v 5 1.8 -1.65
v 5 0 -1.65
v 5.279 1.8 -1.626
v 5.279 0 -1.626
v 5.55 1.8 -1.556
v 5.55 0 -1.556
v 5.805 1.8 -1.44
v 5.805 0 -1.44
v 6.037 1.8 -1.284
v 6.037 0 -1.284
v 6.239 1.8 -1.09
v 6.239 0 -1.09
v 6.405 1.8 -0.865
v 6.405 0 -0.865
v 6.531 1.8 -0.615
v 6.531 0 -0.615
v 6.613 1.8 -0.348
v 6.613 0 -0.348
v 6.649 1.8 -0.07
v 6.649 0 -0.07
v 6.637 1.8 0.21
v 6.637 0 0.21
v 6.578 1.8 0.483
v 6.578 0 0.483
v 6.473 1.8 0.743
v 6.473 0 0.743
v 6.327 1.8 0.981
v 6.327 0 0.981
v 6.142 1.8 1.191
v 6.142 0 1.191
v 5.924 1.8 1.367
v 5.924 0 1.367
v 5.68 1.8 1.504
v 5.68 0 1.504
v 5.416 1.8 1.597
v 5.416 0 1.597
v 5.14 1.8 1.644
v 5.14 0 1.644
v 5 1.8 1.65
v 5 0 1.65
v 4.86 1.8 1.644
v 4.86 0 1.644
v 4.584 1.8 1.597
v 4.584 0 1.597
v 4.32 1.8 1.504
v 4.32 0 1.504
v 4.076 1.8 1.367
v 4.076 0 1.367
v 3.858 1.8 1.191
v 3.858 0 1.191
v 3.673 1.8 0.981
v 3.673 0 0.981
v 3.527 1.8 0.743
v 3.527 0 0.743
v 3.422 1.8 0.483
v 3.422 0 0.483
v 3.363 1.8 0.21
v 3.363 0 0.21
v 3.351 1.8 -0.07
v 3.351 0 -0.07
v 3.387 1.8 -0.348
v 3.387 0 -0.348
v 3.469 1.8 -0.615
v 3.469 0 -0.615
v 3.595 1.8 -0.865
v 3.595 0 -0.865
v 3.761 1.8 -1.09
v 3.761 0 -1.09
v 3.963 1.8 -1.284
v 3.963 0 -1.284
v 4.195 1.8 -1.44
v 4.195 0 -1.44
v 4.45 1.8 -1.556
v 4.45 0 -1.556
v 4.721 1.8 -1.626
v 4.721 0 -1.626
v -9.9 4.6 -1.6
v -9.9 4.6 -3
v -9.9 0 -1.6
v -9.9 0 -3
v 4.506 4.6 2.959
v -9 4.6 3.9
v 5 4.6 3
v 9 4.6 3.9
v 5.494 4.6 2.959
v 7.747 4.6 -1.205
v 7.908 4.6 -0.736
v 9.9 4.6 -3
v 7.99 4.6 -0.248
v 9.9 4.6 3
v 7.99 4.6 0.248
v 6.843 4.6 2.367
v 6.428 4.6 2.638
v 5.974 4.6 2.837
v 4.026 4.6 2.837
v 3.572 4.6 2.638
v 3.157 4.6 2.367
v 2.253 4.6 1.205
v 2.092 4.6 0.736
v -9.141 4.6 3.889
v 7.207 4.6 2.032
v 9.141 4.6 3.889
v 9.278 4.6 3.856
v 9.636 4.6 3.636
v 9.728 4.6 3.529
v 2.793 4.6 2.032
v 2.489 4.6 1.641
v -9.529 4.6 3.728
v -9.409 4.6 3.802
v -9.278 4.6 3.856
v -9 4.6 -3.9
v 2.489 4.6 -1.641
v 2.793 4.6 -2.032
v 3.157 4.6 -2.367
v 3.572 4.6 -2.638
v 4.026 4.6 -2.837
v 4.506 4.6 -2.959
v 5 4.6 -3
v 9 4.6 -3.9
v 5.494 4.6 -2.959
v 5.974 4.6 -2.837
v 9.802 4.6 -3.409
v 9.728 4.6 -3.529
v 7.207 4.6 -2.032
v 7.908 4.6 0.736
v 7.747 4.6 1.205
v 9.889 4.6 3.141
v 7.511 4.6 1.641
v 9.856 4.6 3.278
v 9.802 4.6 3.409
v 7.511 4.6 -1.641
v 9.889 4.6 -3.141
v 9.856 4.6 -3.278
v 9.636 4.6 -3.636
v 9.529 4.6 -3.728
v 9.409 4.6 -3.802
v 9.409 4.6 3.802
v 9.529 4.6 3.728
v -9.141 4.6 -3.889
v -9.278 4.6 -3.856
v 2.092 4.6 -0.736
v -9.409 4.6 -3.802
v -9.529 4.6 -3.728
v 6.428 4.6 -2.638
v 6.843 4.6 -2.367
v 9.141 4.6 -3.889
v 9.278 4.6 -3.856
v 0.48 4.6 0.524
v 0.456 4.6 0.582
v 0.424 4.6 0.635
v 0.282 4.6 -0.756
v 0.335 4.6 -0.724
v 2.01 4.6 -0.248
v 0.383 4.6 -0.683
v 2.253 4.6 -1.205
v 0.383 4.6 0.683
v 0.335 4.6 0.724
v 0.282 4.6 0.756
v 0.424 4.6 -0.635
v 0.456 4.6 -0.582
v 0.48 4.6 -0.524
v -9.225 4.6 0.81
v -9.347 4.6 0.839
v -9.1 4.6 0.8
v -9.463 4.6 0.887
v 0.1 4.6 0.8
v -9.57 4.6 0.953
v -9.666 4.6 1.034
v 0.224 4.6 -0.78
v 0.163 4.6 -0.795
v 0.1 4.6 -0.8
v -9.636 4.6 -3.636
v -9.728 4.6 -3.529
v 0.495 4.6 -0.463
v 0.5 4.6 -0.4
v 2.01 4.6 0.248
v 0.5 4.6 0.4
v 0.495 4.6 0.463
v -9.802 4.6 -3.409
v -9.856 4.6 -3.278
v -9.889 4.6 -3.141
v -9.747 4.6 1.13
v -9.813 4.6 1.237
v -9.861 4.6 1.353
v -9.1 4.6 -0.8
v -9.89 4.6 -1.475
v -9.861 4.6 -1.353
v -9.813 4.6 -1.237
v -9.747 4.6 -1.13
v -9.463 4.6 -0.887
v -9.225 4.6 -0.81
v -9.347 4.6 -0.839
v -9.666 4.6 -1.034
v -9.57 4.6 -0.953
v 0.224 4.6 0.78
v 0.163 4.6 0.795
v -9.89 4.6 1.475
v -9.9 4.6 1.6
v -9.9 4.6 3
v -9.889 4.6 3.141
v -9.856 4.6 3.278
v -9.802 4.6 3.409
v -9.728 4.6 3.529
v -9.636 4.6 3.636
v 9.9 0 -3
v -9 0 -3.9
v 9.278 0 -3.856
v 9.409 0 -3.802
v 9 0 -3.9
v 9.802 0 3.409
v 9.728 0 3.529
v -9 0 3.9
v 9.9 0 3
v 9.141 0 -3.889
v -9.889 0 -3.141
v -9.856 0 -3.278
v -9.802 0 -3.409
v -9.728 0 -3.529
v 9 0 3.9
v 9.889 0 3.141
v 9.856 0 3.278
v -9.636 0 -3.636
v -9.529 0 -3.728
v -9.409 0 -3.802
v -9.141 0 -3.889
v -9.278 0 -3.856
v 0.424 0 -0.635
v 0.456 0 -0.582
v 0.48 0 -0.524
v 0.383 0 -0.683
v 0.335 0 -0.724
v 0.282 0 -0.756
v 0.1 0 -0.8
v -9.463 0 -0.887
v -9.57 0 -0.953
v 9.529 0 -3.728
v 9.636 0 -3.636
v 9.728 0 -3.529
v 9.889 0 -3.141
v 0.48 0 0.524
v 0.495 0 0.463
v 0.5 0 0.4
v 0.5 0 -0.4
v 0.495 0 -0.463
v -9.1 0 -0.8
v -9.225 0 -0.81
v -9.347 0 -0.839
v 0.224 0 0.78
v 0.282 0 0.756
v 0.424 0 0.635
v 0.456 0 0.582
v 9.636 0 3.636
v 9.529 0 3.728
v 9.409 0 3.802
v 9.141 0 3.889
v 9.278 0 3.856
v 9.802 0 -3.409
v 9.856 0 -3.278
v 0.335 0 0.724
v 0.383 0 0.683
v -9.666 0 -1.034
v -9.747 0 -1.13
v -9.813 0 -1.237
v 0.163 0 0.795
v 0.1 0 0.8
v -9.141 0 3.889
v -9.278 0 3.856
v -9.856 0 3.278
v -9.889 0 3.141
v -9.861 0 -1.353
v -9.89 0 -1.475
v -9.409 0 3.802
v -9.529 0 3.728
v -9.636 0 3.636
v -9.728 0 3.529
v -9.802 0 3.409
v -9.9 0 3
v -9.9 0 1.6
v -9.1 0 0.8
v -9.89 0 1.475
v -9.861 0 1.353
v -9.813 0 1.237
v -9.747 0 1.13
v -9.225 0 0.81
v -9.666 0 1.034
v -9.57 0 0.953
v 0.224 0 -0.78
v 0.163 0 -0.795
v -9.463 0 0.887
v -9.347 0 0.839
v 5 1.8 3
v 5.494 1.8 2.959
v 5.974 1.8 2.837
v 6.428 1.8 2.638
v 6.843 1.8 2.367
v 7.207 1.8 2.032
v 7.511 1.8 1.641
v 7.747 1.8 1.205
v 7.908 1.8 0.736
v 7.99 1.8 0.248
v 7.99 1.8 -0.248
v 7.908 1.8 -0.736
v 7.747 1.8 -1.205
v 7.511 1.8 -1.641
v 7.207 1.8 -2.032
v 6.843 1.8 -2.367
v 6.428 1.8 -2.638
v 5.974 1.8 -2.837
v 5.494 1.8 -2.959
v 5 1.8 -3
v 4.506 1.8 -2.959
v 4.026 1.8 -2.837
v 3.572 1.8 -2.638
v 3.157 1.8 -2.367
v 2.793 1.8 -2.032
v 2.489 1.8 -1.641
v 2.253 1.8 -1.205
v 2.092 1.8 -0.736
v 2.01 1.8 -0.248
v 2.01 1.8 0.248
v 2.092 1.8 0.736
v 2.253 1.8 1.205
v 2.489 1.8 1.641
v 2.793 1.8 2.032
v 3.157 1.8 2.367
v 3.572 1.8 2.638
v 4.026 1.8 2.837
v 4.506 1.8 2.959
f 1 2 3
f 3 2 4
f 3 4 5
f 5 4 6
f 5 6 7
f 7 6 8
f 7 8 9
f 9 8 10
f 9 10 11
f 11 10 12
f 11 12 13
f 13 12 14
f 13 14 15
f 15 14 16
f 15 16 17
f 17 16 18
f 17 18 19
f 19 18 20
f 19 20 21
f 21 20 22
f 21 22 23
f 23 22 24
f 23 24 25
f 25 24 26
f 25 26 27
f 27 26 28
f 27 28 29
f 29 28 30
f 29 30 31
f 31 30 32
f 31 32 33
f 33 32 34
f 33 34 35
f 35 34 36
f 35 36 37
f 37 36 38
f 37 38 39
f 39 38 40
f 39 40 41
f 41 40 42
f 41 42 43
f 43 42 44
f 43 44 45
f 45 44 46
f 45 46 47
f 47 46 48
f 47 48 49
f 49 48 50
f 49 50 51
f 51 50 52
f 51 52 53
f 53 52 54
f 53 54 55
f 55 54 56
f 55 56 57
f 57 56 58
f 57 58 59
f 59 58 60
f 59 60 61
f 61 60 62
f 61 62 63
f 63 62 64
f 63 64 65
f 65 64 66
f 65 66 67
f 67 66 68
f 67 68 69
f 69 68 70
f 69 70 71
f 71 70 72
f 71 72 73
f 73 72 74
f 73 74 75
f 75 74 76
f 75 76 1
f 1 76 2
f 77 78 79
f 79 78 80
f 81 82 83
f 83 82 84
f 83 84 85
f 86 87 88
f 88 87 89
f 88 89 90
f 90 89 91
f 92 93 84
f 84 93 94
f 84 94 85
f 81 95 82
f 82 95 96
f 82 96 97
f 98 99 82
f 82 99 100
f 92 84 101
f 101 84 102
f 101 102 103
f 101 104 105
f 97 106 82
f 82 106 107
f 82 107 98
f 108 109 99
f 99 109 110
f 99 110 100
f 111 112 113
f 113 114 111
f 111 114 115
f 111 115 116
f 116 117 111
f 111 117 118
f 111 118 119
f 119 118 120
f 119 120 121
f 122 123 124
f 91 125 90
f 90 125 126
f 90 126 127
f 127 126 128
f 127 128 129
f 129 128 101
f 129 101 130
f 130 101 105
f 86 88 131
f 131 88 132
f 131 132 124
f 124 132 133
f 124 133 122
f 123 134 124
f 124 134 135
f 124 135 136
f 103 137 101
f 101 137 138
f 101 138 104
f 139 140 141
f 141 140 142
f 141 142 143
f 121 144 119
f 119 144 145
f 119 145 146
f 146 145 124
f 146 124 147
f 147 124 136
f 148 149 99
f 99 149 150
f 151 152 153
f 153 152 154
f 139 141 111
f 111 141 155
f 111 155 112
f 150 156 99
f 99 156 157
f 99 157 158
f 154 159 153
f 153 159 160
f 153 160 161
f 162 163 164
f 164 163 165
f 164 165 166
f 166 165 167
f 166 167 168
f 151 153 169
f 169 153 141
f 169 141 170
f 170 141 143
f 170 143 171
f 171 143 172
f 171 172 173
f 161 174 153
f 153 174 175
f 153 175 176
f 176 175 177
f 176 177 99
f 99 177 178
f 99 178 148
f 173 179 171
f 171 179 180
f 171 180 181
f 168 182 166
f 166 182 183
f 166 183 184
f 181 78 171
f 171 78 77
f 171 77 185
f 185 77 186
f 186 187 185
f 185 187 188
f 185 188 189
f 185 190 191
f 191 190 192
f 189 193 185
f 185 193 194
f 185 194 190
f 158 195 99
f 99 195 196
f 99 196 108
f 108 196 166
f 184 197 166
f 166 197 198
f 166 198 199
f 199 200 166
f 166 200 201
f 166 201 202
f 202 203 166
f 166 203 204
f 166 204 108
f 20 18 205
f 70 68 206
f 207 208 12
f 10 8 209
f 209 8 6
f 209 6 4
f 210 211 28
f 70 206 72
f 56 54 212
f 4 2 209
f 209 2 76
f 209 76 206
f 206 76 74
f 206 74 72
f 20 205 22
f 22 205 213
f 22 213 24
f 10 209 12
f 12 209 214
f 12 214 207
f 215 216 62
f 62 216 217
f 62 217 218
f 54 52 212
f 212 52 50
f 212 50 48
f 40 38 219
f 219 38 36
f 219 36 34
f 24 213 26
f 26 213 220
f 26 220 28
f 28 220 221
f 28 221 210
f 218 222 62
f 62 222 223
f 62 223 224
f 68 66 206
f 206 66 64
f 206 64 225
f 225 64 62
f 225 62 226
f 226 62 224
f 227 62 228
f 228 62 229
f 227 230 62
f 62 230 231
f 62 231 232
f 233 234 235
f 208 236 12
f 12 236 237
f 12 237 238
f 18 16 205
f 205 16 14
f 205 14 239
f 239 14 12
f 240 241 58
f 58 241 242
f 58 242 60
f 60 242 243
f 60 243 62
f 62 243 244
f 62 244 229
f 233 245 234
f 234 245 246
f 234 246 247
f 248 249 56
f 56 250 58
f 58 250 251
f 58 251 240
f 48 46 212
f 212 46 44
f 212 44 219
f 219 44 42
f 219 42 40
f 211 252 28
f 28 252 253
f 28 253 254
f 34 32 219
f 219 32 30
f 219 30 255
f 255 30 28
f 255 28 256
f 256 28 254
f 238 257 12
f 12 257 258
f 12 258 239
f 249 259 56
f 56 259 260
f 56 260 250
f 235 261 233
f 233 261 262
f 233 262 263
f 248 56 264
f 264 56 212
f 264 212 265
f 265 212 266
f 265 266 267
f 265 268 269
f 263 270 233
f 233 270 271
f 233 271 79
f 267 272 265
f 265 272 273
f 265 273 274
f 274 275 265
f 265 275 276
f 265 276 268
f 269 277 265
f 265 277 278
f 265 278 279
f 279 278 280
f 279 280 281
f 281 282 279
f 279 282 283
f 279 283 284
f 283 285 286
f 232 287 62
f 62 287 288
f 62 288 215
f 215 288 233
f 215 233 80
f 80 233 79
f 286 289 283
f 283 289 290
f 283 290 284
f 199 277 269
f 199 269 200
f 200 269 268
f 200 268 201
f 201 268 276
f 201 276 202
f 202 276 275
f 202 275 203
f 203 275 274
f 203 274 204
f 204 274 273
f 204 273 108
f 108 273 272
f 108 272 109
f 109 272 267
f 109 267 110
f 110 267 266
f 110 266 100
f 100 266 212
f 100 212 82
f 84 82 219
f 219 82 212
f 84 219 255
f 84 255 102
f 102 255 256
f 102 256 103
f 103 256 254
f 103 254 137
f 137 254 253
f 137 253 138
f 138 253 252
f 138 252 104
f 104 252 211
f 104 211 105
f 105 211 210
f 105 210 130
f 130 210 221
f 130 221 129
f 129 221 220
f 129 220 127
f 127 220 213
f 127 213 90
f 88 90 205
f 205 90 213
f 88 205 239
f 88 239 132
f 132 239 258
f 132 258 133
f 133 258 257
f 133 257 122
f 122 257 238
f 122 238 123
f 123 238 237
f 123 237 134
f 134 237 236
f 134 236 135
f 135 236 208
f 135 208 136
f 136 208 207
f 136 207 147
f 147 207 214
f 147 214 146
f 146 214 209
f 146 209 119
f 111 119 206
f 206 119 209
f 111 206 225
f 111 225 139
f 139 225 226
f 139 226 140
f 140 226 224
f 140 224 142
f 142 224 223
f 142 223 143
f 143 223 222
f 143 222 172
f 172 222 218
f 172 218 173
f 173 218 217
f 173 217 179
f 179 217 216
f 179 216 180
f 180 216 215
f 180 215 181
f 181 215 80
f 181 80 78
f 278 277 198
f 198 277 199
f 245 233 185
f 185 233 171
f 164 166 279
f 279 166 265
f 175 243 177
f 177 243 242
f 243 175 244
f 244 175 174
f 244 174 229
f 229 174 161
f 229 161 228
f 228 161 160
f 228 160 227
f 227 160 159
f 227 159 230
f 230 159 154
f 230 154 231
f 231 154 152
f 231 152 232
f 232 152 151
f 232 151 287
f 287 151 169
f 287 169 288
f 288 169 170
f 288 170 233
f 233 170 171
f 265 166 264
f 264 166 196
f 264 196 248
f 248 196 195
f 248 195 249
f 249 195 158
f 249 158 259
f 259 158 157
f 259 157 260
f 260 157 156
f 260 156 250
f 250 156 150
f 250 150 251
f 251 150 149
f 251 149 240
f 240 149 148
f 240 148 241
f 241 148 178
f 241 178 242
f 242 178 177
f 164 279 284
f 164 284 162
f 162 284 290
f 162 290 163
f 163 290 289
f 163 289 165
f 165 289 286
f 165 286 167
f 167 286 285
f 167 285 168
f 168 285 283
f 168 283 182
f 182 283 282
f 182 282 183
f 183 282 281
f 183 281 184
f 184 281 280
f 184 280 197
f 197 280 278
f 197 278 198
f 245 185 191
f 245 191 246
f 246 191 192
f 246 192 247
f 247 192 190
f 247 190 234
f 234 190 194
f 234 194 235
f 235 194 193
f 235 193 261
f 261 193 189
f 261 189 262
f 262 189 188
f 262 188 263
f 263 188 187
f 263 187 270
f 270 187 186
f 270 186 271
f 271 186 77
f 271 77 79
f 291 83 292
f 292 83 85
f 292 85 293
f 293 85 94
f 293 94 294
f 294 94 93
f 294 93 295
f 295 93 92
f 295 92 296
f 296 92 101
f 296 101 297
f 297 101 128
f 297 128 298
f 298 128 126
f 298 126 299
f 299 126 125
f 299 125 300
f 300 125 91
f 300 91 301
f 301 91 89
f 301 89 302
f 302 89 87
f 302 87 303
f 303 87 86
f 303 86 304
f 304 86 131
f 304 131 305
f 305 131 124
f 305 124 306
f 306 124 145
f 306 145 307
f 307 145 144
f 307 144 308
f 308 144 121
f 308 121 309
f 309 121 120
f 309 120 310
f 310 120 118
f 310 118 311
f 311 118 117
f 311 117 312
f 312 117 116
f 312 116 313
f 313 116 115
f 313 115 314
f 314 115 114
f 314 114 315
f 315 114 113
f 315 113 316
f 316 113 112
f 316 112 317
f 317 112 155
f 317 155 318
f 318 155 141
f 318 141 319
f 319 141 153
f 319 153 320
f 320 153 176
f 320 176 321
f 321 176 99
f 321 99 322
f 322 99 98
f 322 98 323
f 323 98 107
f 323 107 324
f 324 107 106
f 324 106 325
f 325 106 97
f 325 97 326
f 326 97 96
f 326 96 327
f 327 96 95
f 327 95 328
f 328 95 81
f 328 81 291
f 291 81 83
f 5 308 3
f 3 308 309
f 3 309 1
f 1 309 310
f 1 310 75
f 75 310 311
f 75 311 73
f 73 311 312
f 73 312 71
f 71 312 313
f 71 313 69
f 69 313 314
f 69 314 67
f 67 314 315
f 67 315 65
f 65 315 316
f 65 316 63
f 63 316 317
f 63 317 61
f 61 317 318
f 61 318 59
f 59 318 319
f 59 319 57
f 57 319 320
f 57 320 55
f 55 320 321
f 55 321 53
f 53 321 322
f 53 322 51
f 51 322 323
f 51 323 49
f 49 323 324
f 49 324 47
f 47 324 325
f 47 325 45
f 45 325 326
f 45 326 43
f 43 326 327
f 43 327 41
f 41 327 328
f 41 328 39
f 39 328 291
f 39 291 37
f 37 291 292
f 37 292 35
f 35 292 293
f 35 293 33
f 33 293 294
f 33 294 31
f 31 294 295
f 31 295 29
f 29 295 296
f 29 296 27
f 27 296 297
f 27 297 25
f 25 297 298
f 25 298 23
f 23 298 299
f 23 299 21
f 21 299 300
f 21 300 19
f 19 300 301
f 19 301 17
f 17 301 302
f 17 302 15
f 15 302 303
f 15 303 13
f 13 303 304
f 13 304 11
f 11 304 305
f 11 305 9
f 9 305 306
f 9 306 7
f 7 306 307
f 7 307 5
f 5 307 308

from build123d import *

# Parameters (mm, degrees)
SKETCH_1_R          = 1.65
EXTRUDE_1_DEPTH     = 4.6
CUT_EXTRUDE_1_DEPTH = 4.6
FILLET_1_R          = 0.8
SKETCH_3_R          = 3
CUT_EXTRUDE_2_DEPTH = 2.8


with BuildPart() as part:
    # 草图1 → 凸台-拉伸1 (new body)
    with BuildSketch(Plane(origin=(0, 0, 0), x_dir=(1, 0, 0), z_dir=(0, 1, 0))):
        with BuildLine():
            Line((-9.9, -3), (-9.9, 3))
            ThreePointArc((-9.9, 3), (-9.636396103, 3.636396103), (-9, 3.9))
            Line((-9, 3.9), (9, 3.9))
            ThreePointArc((9, 3.9), (9.636396103, 3.636396103), (9.9, 3))
            Line((9.9, 3), (9.9, -3))
            ThreePointArc((9.9, -3), (9.636396103, -3.636396103), (9, -3.9))
            Line((9, -3.9), (-9, -3.9))
            ThreePointArc((-9, -3.9), (-9.636396103, -3.636396103), (-9.9, -3))
        make_face()
        with Locations(Location((5, 0, 0), (0, 0, 270))):
            Circle(SKETCH_1_R, mode=Mode.SUBTRACT)
    extrude(amount=EXTRUDE_1_DEPTH)

    # 草图2 → 切除-拉伸1 (cut)
    with BuildSketch(Plane(origin=(0, 4.6, 0), x_dir=(1, 0, 0), z_dir=(0, 1, 0))):
        with BuildLine():
            Line((-10.1, 0.8), (0.1, 0.8))
            ThreePointArc((0.1, 0.8), (0.382842712, 0.682842712), (0.5, 0.4))
            Line((0.5, 0.4), (0.5, -0.4))
            ThreePointArc((0.5, -0.4), (0.382842712, -0.682842712), (0.1, -0.8))
            Line((0.1, -0.8), (-10.1, -0.8))
            ThreePointArc((-10.1, -0.8), (-10.382842712, -0.682842712), (-10.5, -0.4))
            Line((-10.5, -0.4), (-10.5, 0.4))
            ThreePointArc((-10.5, 0.4), (-10.382842712, 0.682842712), (-10.1, 0.8))
        make_face()
    extrude(amount=-CUT_EXTRUDE_1_DEPTH, mode=Mode.SUBTRACT)

    # 圆角1
    fillet_1_edges = [part.edges().sort_by_distance(p)[0] for p in [
        (-9.9, 2.3, 0.8),
        (-9.9, 2.3, -0.8),
    ]]
    fillet(fillet_1_edges, radius=FILLET_1_R)

    # 草图3 → 切除-拉伸2 (cut)
    with BuildSketch(Plane(origin=(0, 4.6, 0), x_dir=(1, 0, 0), z_dir=(0, 1, 0))):
        with Locations(Location((5, 0, 0), (0, 0, 270))):
            Circle(SKETCH_3_R)
    extrude(amount=-CUT_EXTRUDE_2_DEPTH, mode=Mode.SUBTRACT)


solid = part.part
